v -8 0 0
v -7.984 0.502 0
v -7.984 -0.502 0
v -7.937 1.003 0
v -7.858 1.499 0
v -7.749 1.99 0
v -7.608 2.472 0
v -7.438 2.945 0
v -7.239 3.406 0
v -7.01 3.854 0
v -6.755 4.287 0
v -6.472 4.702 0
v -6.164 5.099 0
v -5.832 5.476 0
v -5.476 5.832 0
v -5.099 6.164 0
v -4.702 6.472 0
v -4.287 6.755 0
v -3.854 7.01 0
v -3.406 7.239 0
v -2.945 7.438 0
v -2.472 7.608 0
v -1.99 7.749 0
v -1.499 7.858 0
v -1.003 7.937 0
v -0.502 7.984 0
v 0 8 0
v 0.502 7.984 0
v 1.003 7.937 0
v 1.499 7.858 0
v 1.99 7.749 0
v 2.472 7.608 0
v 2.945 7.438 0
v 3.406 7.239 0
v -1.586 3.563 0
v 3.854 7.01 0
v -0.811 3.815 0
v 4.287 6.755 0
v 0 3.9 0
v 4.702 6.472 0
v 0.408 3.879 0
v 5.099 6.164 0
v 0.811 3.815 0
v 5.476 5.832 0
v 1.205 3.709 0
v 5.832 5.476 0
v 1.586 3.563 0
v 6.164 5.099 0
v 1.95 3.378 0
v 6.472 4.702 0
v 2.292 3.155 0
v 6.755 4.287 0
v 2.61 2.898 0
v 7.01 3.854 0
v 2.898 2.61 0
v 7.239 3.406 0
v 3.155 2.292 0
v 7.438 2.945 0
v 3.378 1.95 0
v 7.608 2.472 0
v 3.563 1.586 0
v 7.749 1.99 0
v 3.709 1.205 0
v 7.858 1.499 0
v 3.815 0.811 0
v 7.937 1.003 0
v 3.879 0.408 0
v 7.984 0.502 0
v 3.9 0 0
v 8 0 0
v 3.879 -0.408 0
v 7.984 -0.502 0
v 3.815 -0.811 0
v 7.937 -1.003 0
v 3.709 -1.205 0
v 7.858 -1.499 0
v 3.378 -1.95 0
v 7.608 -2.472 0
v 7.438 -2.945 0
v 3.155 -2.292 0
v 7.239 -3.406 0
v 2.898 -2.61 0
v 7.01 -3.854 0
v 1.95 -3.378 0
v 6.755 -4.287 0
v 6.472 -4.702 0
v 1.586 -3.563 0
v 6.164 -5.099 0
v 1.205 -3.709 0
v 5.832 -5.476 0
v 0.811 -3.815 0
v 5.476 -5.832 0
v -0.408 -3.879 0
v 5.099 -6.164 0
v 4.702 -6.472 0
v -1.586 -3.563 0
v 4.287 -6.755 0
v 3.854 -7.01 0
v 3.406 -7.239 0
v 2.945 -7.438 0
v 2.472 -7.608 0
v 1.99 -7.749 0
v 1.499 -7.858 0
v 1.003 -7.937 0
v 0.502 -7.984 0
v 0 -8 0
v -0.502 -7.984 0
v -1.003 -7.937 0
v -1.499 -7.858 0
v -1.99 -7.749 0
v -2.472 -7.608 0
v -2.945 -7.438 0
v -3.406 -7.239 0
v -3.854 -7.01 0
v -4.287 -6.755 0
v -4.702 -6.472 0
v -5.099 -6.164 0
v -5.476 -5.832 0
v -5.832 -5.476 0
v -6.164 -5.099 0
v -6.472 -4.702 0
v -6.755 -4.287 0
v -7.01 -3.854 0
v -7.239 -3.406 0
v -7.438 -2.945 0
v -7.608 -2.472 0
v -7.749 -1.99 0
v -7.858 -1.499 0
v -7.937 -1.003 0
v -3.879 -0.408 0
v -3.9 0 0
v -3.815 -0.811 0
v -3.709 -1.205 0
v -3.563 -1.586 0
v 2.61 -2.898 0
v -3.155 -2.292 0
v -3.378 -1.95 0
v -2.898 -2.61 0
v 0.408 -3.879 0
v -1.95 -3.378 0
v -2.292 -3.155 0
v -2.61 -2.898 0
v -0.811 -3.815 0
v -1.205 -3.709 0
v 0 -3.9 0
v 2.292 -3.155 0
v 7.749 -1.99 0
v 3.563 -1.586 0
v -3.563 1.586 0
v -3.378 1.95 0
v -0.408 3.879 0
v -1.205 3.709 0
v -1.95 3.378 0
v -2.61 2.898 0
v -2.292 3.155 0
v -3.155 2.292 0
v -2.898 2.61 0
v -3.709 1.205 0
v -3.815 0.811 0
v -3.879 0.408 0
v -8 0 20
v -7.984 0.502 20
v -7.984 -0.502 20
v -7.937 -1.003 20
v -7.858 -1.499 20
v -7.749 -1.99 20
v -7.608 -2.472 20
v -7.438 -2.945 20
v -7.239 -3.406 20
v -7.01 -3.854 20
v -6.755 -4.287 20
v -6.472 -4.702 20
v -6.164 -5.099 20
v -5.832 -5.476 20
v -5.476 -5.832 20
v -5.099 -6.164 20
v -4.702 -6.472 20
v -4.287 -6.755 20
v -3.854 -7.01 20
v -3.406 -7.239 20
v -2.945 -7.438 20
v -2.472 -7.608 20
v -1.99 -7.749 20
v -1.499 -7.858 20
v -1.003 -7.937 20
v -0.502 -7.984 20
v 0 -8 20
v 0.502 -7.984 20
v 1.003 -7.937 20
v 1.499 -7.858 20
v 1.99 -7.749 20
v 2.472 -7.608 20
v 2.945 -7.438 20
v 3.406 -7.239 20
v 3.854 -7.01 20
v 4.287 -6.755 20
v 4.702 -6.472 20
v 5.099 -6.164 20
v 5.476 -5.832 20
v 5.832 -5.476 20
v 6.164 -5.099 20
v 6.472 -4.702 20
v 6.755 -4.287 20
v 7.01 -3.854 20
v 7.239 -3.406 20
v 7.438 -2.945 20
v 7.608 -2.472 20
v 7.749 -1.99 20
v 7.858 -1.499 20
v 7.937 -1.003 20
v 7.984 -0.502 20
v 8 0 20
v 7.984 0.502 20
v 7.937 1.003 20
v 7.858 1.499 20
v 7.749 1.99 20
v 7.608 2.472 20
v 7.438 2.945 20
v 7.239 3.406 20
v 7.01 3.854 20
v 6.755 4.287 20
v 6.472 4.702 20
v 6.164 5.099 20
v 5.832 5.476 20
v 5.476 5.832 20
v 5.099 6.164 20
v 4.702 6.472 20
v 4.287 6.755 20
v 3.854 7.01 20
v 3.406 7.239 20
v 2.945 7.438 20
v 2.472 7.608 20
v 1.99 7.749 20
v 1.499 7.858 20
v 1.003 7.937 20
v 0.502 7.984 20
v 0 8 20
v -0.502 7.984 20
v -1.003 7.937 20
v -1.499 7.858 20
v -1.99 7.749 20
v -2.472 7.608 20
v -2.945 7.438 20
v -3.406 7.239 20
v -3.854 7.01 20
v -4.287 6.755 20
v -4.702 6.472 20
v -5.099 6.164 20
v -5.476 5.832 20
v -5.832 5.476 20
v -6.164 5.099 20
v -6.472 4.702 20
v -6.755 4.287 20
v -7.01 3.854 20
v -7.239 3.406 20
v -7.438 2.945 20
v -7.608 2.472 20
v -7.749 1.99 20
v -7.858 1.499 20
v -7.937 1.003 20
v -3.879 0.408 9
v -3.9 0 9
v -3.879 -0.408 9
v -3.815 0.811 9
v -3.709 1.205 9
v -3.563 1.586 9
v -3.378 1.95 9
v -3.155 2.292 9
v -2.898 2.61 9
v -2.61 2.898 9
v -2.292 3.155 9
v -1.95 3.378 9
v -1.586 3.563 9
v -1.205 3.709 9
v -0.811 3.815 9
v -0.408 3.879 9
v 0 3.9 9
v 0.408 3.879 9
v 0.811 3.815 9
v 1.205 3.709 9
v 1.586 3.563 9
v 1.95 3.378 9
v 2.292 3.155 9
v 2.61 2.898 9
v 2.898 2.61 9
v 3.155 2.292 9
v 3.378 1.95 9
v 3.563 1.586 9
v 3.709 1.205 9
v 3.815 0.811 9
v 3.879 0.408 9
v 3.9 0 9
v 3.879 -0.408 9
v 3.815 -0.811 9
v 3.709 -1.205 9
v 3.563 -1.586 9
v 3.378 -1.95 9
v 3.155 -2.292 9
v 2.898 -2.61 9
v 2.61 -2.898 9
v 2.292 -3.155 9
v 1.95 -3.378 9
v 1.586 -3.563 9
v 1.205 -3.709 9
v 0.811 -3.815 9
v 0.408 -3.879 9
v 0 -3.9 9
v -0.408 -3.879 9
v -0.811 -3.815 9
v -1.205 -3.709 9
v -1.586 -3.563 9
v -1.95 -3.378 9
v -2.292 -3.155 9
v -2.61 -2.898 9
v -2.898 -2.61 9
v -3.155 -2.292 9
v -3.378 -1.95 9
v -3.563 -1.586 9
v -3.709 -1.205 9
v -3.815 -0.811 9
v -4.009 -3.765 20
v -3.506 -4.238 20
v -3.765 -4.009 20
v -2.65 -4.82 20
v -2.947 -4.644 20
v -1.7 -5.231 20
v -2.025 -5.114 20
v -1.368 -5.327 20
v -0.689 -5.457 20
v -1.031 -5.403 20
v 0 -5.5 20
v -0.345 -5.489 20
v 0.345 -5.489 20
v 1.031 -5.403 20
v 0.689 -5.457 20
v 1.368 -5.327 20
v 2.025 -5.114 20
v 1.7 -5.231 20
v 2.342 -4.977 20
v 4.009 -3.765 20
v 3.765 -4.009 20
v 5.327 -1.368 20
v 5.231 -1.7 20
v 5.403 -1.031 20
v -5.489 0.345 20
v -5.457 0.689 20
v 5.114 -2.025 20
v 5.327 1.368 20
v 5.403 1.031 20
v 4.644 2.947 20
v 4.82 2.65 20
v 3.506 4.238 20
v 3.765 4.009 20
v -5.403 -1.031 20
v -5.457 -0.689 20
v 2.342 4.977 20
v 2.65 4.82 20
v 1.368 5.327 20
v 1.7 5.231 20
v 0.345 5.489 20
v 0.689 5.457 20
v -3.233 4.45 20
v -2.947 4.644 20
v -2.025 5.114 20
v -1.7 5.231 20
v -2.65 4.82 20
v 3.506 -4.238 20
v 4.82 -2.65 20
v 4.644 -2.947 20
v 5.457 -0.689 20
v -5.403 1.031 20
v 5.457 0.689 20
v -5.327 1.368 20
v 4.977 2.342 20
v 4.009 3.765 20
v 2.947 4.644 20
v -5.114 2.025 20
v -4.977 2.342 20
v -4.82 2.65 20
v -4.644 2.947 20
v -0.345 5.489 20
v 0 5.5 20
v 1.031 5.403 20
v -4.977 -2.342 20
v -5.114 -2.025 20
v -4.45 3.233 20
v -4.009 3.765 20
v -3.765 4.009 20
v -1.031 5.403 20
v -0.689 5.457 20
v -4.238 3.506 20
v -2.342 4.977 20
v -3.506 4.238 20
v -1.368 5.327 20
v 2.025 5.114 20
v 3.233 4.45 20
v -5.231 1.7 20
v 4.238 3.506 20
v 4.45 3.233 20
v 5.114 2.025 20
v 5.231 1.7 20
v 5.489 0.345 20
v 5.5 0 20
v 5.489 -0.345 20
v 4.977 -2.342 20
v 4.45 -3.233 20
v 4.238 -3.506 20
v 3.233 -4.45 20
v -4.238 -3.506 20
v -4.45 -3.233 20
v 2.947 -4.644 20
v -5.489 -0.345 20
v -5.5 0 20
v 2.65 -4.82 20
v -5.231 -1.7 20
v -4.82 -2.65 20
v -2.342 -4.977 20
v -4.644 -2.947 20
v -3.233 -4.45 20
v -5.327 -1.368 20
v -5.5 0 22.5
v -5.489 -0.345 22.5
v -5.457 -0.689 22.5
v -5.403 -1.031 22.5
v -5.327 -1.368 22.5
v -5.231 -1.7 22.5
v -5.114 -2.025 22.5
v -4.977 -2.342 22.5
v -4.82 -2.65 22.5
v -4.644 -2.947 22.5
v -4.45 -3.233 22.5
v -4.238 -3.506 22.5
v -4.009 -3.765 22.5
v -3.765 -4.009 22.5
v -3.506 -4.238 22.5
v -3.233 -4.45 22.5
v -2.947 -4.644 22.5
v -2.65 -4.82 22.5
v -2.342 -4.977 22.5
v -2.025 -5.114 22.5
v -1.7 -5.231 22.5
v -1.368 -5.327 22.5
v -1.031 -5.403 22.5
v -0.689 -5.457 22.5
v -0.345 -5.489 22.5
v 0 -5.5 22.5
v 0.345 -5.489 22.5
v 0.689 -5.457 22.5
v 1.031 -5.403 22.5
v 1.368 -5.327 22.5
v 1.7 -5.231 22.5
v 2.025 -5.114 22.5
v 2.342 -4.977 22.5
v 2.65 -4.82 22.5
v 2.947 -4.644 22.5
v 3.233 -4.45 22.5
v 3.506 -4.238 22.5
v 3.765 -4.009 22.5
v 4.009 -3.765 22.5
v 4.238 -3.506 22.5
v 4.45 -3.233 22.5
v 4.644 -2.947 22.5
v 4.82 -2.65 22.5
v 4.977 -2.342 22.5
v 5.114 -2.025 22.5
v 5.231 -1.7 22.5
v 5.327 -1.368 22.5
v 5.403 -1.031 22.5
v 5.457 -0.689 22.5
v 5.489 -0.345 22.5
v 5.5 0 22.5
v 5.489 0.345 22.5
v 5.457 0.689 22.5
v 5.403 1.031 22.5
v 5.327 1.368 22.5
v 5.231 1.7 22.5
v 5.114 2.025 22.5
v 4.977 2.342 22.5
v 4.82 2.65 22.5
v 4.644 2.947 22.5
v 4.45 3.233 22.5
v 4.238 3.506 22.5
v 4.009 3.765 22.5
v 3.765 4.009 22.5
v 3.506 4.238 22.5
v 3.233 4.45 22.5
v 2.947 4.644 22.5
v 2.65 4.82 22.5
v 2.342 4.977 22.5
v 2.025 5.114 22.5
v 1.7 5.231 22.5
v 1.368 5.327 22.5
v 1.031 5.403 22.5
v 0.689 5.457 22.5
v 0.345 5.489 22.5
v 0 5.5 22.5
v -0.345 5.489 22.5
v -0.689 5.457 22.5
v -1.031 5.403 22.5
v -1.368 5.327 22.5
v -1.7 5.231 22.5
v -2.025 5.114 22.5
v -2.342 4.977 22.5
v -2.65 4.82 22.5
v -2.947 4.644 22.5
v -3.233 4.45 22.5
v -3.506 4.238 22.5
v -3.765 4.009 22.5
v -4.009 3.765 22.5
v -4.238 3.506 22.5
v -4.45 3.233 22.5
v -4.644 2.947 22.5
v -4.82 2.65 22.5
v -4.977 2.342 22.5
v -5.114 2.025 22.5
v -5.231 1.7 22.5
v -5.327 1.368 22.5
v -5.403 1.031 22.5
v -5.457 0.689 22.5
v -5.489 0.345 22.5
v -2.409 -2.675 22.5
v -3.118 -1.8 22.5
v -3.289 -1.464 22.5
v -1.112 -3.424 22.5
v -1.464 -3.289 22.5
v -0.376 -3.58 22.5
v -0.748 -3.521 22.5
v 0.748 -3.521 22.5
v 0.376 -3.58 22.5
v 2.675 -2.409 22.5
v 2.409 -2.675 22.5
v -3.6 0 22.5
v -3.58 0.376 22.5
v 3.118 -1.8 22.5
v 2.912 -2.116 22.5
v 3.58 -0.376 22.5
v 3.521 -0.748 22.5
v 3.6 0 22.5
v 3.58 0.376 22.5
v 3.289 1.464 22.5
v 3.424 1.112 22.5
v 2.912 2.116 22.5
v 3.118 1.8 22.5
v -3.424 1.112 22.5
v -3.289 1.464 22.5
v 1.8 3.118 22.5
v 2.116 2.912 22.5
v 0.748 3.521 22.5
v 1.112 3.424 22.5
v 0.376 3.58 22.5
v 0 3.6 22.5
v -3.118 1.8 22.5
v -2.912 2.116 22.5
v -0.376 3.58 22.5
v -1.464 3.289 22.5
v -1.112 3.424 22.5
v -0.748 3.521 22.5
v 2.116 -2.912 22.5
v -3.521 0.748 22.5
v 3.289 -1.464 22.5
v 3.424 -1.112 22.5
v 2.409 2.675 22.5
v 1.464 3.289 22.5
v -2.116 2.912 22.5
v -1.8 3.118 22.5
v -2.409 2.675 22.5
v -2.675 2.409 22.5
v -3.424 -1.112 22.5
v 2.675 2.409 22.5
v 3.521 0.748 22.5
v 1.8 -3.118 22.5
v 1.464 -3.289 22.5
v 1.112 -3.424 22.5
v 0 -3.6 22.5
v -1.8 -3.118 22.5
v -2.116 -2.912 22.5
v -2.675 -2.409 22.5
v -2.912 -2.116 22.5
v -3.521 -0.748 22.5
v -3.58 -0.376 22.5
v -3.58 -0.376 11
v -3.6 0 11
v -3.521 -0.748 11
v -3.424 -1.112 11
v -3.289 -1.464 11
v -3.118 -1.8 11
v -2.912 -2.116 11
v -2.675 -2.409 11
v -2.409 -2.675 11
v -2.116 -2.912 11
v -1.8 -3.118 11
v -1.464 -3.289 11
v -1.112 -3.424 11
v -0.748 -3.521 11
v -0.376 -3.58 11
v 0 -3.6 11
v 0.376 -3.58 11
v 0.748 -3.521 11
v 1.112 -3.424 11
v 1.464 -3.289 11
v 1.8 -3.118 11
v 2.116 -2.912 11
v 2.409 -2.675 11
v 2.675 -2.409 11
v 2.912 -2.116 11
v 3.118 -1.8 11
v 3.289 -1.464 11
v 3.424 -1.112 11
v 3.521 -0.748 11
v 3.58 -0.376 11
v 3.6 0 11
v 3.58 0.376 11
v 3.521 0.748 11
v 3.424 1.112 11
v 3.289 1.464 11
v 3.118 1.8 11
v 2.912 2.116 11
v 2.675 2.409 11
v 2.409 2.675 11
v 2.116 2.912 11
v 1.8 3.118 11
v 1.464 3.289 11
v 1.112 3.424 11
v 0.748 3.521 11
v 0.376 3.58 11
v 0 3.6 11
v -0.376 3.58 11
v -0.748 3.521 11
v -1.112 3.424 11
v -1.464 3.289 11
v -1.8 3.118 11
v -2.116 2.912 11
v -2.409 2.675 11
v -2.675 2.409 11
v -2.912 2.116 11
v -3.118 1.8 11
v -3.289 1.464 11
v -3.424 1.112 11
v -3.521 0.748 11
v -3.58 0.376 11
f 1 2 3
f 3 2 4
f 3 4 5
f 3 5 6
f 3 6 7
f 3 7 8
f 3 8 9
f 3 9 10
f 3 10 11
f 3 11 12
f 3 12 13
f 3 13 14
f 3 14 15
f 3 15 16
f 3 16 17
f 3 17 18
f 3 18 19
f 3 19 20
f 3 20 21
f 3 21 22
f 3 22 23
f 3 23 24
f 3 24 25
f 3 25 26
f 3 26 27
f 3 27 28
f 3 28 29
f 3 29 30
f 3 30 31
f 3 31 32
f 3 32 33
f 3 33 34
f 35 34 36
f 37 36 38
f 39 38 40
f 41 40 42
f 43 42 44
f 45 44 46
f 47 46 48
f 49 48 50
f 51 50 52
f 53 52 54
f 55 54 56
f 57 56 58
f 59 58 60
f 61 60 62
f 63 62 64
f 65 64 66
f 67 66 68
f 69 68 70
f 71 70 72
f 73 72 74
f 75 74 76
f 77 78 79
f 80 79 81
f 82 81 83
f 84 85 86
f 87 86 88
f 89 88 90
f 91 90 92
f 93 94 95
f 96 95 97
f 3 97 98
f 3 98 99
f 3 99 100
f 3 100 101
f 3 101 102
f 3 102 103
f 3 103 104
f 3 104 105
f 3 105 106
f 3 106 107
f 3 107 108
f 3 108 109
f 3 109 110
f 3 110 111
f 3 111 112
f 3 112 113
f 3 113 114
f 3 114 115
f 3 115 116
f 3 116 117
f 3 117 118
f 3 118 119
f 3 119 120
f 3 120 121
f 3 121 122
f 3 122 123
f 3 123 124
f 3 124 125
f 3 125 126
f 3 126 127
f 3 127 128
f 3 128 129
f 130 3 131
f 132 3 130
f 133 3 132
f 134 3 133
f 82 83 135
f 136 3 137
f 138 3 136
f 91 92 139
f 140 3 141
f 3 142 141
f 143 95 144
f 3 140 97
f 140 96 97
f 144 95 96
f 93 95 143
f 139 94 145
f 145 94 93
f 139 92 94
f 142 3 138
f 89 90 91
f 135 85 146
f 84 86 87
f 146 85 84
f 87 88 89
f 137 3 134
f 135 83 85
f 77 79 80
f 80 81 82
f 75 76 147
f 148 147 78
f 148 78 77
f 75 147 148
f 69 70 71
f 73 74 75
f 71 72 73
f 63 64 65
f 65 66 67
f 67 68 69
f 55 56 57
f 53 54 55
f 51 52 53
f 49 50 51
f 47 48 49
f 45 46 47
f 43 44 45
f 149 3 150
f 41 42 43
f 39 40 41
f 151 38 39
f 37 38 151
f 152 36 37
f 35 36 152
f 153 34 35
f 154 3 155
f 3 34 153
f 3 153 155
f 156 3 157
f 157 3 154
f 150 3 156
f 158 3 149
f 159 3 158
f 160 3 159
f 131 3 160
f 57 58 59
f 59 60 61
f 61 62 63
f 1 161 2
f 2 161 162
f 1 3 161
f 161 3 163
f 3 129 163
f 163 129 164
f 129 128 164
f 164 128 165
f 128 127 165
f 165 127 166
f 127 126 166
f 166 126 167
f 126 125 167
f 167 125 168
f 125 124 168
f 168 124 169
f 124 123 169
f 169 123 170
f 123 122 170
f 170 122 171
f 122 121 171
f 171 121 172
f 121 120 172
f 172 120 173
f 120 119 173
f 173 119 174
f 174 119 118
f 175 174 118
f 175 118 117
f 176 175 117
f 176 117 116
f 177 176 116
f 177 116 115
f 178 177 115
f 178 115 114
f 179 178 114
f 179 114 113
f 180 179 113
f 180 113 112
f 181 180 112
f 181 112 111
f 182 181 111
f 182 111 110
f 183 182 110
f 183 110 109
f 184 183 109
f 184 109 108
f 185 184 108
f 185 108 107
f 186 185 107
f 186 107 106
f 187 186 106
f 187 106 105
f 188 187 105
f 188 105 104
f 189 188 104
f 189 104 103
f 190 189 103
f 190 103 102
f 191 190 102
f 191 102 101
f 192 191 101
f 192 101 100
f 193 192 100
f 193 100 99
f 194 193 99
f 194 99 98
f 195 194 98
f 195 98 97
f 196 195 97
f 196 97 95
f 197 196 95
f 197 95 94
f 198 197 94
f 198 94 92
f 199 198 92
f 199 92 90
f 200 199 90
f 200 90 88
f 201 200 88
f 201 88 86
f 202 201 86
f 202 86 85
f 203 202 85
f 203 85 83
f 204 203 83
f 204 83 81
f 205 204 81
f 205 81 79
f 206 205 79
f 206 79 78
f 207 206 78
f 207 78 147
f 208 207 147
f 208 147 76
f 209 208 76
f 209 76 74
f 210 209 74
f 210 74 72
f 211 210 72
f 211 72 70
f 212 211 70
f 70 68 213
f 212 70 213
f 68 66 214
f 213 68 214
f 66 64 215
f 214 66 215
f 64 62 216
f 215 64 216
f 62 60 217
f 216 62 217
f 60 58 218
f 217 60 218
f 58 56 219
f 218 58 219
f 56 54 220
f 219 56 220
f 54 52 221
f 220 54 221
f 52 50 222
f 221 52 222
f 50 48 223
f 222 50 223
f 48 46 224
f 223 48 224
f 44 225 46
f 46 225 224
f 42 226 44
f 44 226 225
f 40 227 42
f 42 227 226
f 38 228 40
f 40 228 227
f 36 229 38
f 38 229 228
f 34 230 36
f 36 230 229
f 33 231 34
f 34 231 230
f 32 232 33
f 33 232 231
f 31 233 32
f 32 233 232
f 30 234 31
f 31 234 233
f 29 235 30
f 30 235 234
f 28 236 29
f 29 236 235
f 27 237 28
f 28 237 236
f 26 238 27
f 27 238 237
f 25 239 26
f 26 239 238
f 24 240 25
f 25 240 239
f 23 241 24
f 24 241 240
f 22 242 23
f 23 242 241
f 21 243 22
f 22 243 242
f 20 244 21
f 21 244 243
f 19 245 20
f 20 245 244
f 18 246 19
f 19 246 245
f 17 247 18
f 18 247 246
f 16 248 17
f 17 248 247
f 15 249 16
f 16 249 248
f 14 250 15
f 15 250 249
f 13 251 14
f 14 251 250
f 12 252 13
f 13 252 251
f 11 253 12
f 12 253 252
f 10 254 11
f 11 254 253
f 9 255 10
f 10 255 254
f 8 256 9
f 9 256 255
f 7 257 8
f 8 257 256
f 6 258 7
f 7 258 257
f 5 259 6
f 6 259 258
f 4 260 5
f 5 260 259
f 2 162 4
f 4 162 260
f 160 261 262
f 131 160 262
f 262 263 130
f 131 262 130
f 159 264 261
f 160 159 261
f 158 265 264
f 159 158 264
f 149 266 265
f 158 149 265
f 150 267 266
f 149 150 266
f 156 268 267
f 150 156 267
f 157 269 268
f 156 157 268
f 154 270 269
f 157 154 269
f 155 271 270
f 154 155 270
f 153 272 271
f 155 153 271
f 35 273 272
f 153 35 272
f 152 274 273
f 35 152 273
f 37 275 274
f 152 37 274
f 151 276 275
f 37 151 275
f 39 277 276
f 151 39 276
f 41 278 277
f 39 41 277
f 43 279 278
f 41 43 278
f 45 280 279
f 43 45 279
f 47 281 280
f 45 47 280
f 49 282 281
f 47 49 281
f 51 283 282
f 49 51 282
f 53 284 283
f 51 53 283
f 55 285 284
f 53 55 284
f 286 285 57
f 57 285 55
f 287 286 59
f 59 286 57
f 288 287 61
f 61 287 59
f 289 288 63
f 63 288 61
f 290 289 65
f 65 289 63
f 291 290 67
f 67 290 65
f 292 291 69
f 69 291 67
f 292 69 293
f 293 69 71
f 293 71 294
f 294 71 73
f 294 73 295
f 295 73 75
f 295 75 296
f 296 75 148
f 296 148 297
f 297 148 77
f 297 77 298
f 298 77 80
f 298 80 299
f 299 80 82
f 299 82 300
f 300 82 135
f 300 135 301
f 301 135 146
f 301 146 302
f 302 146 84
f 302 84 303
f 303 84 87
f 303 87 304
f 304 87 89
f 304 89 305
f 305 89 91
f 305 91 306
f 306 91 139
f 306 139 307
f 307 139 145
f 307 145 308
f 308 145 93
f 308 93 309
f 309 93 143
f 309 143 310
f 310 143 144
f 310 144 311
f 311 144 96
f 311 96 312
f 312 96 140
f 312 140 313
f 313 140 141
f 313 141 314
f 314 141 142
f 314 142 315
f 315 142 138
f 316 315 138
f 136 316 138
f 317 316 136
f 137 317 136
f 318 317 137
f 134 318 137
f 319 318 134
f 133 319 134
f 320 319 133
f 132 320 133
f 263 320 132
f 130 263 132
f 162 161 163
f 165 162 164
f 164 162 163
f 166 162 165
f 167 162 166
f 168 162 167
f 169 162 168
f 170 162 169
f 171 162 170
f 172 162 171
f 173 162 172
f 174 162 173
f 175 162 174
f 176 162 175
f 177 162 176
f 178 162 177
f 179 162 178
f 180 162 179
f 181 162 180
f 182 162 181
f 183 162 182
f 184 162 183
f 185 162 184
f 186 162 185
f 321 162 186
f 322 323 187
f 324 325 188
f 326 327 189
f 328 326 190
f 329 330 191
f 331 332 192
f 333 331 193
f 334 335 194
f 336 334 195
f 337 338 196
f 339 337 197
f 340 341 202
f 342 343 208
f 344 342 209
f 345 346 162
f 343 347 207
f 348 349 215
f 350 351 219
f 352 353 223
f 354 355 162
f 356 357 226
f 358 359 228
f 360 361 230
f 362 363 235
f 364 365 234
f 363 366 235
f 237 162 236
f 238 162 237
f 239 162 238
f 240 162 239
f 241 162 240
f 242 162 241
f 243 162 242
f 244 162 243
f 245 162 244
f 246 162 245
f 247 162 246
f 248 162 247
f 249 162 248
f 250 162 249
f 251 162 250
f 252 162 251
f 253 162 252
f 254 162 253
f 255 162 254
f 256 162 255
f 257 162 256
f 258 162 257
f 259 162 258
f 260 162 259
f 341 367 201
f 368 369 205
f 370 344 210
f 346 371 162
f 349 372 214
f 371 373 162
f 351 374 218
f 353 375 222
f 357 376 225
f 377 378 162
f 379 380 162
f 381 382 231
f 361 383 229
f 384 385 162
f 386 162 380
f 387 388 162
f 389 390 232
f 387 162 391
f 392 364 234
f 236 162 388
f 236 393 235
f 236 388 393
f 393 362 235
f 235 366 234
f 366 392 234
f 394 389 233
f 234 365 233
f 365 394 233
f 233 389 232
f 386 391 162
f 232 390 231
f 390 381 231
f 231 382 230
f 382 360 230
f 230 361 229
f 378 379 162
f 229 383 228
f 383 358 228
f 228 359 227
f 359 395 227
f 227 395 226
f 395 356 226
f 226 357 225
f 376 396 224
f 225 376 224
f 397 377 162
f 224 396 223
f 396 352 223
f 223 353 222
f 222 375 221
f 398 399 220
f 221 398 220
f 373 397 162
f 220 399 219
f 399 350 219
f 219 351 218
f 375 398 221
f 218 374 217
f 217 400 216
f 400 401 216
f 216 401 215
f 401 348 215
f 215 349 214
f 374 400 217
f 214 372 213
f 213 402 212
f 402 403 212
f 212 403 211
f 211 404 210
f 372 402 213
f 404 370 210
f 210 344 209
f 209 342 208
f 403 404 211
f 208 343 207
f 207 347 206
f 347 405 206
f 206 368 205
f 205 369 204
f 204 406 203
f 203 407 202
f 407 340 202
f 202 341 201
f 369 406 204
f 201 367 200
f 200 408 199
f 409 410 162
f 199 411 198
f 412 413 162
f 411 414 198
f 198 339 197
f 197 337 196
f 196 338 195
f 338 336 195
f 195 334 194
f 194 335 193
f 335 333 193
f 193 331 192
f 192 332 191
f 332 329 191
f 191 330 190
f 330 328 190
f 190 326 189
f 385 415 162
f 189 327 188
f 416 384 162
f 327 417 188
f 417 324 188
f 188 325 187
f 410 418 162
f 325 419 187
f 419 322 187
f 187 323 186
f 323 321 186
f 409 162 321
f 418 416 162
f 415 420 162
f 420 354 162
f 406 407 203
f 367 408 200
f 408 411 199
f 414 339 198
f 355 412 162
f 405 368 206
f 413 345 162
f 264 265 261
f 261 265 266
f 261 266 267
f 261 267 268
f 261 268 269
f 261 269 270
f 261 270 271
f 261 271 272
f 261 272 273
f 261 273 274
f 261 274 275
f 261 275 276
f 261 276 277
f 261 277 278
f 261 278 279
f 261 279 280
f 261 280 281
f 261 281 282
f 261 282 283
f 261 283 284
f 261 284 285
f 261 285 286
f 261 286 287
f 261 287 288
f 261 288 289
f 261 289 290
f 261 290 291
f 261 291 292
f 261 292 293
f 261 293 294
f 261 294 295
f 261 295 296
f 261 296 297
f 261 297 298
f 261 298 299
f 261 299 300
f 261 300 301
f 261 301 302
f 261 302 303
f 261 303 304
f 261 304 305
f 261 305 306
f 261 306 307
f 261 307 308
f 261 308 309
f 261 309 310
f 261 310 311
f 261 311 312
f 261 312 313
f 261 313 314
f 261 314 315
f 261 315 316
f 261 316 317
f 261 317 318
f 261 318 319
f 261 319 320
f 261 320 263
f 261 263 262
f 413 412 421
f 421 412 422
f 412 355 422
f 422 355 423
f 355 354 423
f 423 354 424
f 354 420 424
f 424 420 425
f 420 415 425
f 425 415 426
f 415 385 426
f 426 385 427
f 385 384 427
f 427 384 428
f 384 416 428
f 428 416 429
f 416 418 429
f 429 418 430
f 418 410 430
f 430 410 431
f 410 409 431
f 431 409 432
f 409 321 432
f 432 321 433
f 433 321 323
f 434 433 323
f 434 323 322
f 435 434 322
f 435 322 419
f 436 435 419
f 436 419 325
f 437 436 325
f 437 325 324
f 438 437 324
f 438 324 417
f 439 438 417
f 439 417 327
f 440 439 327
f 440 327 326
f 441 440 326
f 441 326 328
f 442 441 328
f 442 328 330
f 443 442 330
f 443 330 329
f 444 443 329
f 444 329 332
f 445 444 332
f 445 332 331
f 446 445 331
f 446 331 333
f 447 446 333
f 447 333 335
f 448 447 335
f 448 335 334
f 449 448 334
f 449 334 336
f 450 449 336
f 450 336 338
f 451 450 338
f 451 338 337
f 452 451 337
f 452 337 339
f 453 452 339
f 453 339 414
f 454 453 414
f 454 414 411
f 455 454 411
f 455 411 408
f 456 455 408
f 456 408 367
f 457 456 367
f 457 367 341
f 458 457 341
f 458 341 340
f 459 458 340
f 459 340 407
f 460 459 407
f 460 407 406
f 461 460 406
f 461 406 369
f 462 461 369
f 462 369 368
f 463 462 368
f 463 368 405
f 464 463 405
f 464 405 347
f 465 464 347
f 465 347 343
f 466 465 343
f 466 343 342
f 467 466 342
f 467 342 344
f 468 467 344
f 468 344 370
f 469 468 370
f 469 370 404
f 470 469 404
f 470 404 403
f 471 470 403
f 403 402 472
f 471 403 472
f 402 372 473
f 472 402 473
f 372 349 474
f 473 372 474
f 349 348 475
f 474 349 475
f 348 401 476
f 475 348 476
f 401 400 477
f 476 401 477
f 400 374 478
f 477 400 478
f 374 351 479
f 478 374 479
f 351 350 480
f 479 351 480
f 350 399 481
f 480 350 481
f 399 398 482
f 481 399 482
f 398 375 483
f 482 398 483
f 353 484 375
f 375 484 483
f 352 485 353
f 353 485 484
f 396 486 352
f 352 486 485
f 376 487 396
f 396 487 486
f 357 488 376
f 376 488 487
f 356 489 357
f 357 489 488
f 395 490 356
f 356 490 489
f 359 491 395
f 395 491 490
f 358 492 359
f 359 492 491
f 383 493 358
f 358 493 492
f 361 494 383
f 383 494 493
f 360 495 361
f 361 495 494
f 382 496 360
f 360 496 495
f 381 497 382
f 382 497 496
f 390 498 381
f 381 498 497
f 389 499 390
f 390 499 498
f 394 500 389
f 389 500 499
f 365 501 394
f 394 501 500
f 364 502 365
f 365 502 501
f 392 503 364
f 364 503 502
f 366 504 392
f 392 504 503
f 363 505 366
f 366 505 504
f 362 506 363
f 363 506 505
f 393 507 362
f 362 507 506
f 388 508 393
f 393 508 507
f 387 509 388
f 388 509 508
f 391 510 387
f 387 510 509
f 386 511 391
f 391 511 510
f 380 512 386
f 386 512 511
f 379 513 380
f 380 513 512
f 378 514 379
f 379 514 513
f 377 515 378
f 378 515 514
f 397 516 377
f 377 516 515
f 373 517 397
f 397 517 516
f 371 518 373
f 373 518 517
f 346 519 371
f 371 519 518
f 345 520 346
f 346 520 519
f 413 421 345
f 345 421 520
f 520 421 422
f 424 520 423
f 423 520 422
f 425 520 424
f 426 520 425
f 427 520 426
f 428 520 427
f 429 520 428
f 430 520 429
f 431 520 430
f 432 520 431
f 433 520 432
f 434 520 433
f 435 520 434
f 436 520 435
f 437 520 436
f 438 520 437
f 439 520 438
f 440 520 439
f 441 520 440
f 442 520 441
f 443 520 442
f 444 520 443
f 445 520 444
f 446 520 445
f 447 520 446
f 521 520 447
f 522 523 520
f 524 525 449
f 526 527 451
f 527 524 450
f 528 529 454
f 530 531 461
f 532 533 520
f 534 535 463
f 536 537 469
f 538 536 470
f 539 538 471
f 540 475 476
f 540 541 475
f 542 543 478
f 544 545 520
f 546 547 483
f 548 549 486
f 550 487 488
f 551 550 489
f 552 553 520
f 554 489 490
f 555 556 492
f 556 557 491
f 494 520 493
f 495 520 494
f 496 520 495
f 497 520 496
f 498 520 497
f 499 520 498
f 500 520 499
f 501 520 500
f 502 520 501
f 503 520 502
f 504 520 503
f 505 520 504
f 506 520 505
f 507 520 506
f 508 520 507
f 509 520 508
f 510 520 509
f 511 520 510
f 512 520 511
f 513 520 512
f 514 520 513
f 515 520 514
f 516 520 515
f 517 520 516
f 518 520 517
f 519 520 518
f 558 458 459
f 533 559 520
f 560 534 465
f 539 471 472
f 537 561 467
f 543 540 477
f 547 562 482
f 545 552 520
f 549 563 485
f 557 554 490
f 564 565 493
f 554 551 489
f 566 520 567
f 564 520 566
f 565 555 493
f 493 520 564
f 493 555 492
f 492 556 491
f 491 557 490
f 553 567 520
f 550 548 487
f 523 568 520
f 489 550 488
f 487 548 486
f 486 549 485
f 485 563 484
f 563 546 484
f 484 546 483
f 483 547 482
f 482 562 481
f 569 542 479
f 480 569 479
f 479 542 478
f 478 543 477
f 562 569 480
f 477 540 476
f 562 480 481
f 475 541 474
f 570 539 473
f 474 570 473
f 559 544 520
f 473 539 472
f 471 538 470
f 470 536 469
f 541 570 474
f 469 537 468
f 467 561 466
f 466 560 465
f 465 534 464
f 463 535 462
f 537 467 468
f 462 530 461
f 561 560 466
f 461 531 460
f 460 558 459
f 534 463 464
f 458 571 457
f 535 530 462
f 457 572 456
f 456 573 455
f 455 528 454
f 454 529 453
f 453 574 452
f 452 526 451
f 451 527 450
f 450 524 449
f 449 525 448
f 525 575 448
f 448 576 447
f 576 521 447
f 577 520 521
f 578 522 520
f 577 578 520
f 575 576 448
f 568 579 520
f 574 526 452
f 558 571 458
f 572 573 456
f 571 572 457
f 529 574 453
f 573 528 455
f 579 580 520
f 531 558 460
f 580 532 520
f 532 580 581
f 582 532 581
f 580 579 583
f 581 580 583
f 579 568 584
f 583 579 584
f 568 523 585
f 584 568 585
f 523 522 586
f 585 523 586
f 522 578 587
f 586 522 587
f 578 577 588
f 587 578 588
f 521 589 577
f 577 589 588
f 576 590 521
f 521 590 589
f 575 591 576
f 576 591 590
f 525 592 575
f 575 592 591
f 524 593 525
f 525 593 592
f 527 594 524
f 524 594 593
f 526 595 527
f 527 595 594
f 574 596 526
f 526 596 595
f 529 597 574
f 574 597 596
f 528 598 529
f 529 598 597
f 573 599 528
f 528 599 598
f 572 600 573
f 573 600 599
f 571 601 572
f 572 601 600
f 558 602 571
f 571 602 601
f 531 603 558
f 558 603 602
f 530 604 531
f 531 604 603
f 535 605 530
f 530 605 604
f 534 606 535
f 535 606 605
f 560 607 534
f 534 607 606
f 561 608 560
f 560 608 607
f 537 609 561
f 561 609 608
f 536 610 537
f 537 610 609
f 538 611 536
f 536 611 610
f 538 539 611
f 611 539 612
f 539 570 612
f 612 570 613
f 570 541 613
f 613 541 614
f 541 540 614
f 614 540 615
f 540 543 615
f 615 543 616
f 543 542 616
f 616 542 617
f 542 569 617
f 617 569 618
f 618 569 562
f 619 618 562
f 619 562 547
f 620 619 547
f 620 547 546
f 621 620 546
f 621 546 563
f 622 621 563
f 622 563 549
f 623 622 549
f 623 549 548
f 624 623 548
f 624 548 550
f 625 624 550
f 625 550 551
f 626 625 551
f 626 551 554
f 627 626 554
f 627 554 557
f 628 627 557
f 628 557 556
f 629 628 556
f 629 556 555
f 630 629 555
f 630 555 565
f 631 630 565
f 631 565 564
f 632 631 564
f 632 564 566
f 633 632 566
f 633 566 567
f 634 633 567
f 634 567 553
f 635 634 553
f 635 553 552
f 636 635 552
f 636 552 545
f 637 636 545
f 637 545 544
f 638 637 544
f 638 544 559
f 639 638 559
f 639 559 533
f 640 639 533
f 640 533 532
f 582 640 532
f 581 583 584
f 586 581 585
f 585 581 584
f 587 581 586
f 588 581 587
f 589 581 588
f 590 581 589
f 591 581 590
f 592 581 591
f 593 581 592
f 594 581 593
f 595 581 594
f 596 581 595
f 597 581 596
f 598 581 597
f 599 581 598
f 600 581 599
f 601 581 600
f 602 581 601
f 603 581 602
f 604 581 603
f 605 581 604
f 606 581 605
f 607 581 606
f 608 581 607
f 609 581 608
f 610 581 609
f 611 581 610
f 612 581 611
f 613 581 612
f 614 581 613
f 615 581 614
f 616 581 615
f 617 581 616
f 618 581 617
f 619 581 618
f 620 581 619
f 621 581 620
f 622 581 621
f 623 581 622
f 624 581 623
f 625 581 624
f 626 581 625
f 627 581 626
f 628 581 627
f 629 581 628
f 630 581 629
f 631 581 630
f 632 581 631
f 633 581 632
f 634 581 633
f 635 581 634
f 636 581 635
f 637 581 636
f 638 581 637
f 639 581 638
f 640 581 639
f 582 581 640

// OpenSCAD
// file: inc/28BYJ-48-Stepper-Motor.scad
// 28BYJ-48 Stepper Motor Model

// Mark Benson

// 23/07/2013

// Creative Commons Non Commerical

// http://www.thingiverse.com/thing:122070

module stepper28BYJ()
{

difference()
{
        
        union()
        {
                //Body
                color("SILVER") cylinder(r=28/2, h=19, $fn=60);

                //Base of motor shaft
                color("SILVER") translate([0,8,19]) cylinder(r=9/2, h=1.5, $fn=40);

                //Motor shaft
                color("SILVER") translate([0,8,20.5]) 
                intersection()
                {
                cylinder(r=5/2, h=9, $fn=40);
                cube([3,6,9],center=true);
                }

                //Left mounting lug
                color("SILVER") translate([-35/2,0,18.5]) mountingLug();
                
                //Right mounting lug
                color("SILVER") translate([35/2,0,18.5]) rotate([0,0,180]) mountingLug();
        
                difference()
                {
                        //Cable entry housing
                        color("BLUE") translate([-14.6/2,-17,1.9]) cube([14.6,17,17]);

                        cylinder(r=27/2, h=29, $fn=60);
                }

        }

        union()
        {
                //Flat on motor shaft
                //translate([-5,0,22]) cube([10,7,25]);
        }
}

}//end of stepper28BYJ module wrapper

module mountingLug()
{
        difference()
        {
                hull()
                {
                        cylinder(r=7/2, h=0.5, $fn=40);
                        translate([0,-7/2,0]) cube([7,7,0.5]);
                }

                translate([0,0,-1]) cylinder(r=4.2/2, h=2, $fn=40);
        }
}

//Call stepper module - comment this out if you include this file in another model
//stepper28BYJ();
// main file
include <inc/28BYJ-48-Stepper-Motor.scad>;
difference(){
union(){
	cylinder(h = 20, r=8, $fn=100);
	translate([0,0,20]) cylinder(h = 2.5, r=5.5, $fn=100);
	//translate([0,0,-21]) stepper28BYJ();
}
union(){
	//cylinder(h = 30, r=8, $fn=60);
	translate([0,0,11]) cylinder(h = 12, r=3.6, $fn=60);
	//#translate([0,-8,-21]) stepper28BYJ();
	//cylinder(h = 5, r=2.49, $fn=60);
	cube(size = [3.1,5,8], center = true);
	translate([0,0,-1]) cylinder(h = 10, r=3.9, $fn=60);
}
}
